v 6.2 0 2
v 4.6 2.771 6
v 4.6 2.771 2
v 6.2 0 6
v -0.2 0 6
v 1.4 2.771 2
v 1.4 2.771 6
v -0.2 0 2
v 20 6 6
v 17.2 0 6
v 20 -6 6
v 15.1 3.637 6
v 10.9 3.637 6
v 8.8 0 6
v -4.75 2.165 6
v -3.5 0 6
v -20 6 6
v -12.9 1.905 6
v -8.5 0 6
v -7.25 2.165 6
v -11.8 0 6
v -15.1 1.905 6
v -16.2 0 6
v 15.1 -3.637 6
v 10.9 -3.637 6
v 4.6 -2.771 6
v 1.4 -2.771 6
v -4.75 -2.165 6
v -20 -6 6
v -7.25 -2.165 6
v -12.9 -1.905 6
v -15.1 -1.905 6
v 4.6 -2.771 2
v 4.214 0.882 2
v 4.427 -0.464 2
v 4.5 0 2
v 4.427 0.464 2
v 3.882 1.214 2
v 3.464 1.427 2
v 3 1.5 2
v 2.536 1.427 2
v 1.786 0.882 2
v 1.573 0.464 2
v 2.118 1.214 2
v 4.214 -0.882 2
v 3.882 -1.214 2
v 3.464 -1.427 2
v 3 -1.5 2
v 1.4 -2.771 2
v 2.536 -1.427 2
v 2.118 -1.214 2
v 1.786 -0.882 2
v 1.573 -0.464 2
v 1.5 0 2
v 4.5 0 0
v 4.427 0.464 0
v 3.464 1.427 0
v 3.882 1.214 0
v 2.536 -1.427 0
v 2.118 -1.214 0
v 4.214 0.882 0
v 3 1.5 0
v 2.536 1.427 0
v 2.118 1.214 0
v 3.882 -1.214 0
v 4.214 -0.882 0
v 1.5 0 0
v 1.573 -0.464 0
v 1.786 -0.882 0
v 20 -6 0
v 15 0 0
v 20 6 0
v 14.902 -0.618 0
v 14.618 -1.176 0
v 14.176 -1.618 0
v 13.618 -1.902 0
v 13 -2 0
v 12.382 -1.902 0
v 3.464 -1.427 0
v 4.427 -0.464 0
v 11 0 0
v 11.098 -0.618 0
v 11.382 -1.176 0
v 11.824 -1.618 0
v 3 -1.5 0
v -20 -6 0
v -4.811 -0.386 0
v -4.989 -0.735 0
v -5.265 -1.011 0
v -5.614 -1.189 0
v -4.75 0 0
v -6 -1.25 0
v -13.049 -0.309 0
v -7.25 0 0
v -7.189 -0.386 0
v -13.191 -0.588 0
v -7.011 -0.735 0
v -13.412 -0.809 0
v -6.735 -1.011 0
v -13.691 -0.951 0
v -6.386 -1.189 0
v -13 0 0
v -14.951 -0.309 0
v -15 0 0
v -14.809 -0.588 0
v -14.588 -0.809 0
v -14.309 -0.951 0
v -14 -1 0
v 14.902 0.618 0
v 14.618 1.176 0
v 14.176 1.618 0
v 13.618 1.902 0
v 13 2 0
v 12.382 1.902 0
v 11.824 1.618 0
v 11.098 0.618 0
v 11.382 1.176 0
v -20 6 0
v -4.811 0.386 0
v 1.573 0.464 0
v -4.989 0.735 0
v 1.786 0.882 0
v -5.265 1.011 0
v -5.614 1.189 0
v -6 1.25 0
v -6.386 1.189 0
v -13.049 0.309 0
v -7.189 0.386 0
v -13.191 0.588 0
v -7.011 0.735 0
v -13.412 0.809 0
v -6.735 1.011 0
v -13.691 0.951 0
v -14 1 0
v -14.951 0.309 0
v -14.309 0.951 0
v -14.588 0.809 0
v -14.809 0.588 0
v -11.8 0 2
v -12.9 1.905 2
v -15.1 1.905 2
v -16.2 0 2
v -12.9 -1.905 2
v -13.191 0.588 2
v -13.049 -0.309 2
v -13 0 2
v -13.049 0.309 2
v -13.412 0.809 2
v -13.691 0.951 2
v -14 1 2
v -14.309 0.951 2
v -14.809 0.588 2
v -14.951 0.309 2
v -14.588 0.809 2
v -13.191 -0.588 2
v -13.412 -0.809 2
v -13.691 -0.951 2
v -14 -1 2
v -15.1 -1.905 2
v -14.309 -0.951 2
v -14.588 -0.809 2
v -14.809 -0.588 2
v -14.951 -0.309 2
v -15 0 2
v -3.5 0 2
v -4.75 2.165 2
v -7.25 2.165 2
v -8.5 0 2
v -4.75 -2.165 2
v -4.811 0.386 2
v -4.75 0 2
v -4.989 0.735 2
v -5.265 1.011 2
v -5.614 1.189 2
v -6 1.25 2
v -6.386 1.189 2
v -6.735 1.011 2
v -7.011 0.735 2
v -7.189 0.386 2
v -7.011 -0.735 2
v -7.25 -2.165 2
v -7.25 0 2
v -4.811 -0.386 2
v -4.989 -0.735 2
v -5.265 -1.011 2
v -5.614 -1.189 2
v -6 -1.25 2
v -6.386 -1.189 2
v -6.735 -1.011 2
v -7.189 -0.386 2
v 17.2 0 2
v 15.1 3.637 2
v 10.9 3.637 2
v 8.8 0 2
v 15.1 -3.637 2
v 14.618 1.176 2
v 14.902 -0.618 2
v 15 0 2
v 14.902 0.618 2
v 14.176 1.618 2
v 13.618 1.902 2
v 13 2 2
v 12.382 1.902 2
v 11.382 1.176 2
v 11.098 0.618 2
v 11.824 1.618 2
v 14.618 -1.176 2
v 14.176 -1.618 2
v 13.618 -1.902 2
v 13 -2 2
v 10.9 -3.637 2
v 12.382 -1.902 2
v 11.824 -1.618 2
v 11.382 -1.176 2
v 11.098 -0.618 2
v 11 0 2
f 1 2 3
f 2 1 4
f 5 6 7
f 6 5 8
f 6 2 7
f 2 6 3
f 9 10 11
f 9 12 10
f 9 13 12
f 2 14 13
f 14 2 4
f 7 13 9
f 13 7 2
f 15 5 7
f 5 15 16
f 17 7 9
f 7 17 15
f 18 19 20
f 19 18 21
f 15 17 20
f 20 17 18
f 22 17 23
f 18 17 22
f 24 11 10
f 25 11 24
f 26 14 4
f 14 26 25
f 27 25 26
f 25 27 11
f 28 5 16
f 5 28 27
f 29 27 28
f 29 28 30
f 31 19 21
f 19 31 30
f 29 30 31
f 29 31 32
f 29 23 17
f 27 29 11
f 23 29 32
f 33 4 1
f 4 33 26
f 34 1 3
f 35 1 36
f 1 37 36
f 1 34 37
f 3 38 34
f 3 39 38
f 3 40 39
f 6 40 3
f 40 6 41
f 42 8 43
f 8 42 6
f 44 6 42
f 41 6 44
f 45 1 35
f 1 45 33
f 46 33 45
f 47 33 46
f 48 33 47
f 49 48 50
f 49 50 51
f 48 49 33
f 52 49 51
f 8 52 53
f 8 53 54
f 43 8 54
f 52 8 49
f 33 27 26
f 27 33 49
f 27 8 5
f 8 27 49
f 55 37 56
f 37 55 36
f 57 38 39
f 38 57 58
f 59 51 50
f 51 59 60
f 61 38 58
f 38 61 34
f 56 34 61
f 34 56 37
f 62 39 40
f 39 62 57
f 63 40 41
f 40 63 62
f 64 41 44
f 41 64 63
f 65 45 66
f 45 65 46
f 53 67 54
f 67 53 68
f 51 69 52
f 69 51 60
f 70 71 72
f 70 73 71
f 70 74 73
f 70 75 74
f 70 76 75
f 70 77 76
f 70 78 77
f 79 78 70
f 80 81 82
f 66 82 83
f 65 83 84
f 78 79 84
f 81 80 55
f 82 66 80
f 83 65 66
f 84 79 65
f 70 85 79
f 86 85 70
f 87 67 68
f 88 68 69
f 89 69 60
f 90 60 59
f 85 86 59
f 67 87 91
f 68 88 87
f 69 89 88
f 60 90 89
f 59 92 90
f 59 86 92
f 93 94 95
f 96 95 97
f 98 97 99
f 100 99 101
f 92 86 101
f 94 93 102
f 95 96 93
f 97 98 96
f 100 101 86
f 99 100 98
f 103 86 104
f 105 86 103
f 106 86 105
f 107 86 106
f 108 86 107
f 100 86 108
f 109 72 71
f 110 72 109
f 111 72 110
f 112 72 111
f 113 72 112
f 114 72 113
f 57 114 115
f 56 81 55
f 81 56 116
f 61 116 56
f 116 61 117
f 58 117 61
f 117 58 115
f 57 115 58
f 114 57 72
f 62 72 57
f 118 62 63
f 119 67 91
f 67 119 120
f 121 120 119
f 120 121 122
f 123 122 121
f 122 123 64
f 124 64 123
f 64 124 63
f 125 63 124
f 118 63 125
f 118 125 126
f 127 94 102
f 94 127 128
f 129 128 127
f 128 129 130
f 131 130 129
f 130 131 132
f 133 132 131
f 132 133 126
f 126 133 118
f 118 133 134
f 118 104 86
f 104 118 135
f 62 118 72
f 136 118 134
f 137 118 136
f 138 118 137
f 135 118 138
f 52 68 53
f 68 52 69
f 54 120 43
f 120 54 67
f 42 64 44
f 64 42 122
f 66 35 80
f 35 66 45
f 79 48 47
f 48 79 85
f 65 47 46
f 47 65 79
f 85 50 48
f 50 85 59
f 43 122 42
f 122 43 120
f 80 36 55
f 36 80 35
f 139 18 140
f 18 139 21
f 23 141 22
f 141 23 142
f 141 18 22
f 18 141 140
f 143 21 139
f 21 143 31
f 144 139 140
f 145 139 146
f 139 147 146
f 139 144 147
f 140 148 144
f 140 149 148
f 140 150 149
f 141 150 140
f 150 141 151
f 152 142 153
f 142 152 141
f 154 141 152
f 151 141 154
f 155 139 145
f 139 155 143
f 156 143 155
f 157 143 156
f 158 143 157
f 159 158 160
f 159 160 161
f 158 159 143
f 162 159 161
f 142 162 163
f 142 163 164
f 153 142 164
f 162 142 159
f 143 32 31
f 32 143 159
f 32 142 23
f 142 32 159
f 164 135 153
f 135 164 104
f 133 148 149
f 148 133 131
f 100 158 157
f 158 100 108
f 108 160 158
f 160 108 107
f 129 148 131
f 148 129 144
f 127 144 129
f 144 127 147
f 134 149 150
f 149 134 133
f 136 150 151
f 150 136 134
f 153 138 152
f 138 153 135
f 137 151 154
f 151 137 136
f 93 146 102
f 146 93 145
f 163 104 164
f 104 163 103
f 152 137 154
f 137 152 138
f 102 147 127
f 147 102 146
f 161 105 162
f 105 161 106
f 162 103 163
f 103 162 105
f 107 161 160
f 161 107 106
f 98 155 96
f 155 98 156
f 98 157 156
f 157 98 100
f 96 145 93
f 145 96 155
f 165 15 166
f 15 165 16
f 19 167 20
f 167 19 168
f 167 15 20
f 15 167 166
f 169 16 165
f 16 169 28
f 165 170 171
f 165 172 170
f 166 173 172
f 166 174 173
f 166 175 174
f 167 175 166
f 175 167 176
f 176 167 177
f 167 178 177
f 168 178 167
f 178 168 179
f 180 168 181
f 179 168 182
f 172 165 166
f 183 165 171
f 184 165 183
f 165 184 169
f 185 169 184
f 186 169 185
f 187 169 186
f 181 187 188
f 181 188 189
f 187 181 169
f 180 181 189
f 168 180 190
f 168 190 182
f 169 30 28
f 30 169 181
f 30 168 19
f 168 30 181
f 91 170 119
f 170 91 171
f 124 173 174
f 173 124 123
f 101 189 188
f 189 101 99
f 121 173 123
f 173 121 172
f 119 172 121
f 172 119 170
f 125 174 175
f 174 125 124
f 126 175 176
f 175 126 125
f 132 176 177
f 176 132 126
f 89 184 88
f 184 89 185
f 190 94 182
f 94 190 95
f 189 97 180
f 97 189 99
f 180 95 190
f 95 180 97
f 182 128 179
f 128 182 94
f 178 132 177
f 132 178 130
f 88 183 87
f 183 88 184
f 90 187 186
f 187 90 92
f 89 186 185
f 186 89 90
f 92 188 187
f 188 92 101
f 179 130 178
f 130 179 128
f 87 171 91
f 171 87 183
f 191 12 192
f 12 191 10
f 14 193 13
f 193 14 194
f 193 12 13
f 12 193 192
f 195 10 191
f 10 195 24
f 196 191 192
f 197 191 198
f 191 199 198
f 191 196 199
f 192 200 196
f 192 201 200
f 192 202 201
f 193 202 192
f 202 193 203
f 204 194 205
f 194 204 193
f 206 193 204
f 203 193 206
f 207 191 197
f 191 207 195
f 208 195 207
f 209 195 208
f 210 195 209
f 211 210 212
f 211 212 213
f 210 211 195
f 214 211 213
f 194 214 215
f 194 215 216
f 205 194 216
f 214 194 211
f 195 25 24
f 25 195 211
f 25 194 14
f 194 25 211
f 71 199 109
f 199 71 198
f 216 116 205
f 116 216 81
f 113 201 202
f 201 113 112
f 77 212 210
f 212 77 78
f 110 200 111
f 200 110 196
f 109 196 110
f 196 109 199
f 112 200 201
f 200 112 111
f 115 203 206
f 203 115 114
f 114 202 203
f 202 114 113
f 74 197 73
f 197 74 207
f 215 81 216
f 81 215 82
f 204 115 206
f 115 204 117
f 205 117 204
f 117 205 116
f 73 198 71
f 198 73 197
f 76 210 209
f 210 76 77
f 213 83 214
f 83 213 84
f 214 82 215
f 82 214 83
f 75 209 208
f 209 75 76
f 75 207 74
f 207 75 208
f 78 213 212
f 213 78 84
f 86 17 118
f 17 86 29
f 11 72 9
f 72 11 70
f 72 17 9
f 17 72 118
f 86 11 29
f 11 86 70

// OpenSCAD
// file: utils/hex_trap.scad
function make_r_for_screw_standard(r_trap) =
((r_trap==2) ? 2.2 : (r_trap==2.5) ? 2.5 : (r_trap==3) ? 3.2 : (r_trap==4) ? 4.2 : r_trap);

function make_r_hole_for_screw_standard(r_trap) =
((r_trap==2) ? 1 : (r_trap==2.5) ? 1.25 : (r_trap==3) ? 1.5 : (r_trap==4) ? 2 : r_trap);

module hex_hole(h_trap,h_hole,r_trap,rot)
{
    
    
    local_r_trap=make_r_for_screw_standard(r_trap);
    local_r_hole=make_r_hole_for_screw_standard(r_trap);
    
    
    rotate([rot,0,0]) {
translate([0,0,h_hole])
{
	cylinder(h = h_trap, r = local_r_trap, $fn = 6);
}

	cylinder(h = h_hole, r = local_r_hole, $fn = 20);

}
}
module hex_hole_fill_bottom(h_trap,h_hole,r_trap,r_hole,rot)
{
    
    
    local_r_trap=make_r_for_screw_standard(r_trap);
    
    
    
    rotate([rot,0,0]) {
translate([0,0,h_hole-0.3])
{
	cylinder(h = 0.3, r = local_r_trap, $fn = 6);
}

	

}
}
module hex_hole_fill_top(h_trap,h_hole,r_trap,r_hole,rot)
{
    
    
    local_r_trap=make_r_for_screw_standard(r_trap);
    rotate([rot,0,0]) {


	cylinder(h = 0.3, r = r_hole, $fn = 20);

}
}
// main file
include <utils/hex_trap.scad>;
base_trap_height=4;
base_hole_height=2;
screw_standard0=2;
screw_standard1=2.5;
screw_standard2=3;
screw_standard3=4;
module traps()
{
translate([-14,0,0])
hex_hole(base_trap_height,base_hole_height,screw_standard0,0);
translate([-6,0,0])
hex_hole(base_trap_height,base_hole_height,screw_standard1,0);
translate([3,0,0])
hex_hole(base_trap_height,base_hole_height,screw_standard2,0);
translate([13,0,0])
hex_hole(base_trap_height,base_hole_height,screw_standard3,0);
}
module box()
{
    box_length=40;
    box_width=12;
    translate([-box_length/2,-box_width/2,0])
    cube(size=[box_length,box_width,base_hole_height+base_trap_height],center=false);
}
difference(){
box();
traps();
}
